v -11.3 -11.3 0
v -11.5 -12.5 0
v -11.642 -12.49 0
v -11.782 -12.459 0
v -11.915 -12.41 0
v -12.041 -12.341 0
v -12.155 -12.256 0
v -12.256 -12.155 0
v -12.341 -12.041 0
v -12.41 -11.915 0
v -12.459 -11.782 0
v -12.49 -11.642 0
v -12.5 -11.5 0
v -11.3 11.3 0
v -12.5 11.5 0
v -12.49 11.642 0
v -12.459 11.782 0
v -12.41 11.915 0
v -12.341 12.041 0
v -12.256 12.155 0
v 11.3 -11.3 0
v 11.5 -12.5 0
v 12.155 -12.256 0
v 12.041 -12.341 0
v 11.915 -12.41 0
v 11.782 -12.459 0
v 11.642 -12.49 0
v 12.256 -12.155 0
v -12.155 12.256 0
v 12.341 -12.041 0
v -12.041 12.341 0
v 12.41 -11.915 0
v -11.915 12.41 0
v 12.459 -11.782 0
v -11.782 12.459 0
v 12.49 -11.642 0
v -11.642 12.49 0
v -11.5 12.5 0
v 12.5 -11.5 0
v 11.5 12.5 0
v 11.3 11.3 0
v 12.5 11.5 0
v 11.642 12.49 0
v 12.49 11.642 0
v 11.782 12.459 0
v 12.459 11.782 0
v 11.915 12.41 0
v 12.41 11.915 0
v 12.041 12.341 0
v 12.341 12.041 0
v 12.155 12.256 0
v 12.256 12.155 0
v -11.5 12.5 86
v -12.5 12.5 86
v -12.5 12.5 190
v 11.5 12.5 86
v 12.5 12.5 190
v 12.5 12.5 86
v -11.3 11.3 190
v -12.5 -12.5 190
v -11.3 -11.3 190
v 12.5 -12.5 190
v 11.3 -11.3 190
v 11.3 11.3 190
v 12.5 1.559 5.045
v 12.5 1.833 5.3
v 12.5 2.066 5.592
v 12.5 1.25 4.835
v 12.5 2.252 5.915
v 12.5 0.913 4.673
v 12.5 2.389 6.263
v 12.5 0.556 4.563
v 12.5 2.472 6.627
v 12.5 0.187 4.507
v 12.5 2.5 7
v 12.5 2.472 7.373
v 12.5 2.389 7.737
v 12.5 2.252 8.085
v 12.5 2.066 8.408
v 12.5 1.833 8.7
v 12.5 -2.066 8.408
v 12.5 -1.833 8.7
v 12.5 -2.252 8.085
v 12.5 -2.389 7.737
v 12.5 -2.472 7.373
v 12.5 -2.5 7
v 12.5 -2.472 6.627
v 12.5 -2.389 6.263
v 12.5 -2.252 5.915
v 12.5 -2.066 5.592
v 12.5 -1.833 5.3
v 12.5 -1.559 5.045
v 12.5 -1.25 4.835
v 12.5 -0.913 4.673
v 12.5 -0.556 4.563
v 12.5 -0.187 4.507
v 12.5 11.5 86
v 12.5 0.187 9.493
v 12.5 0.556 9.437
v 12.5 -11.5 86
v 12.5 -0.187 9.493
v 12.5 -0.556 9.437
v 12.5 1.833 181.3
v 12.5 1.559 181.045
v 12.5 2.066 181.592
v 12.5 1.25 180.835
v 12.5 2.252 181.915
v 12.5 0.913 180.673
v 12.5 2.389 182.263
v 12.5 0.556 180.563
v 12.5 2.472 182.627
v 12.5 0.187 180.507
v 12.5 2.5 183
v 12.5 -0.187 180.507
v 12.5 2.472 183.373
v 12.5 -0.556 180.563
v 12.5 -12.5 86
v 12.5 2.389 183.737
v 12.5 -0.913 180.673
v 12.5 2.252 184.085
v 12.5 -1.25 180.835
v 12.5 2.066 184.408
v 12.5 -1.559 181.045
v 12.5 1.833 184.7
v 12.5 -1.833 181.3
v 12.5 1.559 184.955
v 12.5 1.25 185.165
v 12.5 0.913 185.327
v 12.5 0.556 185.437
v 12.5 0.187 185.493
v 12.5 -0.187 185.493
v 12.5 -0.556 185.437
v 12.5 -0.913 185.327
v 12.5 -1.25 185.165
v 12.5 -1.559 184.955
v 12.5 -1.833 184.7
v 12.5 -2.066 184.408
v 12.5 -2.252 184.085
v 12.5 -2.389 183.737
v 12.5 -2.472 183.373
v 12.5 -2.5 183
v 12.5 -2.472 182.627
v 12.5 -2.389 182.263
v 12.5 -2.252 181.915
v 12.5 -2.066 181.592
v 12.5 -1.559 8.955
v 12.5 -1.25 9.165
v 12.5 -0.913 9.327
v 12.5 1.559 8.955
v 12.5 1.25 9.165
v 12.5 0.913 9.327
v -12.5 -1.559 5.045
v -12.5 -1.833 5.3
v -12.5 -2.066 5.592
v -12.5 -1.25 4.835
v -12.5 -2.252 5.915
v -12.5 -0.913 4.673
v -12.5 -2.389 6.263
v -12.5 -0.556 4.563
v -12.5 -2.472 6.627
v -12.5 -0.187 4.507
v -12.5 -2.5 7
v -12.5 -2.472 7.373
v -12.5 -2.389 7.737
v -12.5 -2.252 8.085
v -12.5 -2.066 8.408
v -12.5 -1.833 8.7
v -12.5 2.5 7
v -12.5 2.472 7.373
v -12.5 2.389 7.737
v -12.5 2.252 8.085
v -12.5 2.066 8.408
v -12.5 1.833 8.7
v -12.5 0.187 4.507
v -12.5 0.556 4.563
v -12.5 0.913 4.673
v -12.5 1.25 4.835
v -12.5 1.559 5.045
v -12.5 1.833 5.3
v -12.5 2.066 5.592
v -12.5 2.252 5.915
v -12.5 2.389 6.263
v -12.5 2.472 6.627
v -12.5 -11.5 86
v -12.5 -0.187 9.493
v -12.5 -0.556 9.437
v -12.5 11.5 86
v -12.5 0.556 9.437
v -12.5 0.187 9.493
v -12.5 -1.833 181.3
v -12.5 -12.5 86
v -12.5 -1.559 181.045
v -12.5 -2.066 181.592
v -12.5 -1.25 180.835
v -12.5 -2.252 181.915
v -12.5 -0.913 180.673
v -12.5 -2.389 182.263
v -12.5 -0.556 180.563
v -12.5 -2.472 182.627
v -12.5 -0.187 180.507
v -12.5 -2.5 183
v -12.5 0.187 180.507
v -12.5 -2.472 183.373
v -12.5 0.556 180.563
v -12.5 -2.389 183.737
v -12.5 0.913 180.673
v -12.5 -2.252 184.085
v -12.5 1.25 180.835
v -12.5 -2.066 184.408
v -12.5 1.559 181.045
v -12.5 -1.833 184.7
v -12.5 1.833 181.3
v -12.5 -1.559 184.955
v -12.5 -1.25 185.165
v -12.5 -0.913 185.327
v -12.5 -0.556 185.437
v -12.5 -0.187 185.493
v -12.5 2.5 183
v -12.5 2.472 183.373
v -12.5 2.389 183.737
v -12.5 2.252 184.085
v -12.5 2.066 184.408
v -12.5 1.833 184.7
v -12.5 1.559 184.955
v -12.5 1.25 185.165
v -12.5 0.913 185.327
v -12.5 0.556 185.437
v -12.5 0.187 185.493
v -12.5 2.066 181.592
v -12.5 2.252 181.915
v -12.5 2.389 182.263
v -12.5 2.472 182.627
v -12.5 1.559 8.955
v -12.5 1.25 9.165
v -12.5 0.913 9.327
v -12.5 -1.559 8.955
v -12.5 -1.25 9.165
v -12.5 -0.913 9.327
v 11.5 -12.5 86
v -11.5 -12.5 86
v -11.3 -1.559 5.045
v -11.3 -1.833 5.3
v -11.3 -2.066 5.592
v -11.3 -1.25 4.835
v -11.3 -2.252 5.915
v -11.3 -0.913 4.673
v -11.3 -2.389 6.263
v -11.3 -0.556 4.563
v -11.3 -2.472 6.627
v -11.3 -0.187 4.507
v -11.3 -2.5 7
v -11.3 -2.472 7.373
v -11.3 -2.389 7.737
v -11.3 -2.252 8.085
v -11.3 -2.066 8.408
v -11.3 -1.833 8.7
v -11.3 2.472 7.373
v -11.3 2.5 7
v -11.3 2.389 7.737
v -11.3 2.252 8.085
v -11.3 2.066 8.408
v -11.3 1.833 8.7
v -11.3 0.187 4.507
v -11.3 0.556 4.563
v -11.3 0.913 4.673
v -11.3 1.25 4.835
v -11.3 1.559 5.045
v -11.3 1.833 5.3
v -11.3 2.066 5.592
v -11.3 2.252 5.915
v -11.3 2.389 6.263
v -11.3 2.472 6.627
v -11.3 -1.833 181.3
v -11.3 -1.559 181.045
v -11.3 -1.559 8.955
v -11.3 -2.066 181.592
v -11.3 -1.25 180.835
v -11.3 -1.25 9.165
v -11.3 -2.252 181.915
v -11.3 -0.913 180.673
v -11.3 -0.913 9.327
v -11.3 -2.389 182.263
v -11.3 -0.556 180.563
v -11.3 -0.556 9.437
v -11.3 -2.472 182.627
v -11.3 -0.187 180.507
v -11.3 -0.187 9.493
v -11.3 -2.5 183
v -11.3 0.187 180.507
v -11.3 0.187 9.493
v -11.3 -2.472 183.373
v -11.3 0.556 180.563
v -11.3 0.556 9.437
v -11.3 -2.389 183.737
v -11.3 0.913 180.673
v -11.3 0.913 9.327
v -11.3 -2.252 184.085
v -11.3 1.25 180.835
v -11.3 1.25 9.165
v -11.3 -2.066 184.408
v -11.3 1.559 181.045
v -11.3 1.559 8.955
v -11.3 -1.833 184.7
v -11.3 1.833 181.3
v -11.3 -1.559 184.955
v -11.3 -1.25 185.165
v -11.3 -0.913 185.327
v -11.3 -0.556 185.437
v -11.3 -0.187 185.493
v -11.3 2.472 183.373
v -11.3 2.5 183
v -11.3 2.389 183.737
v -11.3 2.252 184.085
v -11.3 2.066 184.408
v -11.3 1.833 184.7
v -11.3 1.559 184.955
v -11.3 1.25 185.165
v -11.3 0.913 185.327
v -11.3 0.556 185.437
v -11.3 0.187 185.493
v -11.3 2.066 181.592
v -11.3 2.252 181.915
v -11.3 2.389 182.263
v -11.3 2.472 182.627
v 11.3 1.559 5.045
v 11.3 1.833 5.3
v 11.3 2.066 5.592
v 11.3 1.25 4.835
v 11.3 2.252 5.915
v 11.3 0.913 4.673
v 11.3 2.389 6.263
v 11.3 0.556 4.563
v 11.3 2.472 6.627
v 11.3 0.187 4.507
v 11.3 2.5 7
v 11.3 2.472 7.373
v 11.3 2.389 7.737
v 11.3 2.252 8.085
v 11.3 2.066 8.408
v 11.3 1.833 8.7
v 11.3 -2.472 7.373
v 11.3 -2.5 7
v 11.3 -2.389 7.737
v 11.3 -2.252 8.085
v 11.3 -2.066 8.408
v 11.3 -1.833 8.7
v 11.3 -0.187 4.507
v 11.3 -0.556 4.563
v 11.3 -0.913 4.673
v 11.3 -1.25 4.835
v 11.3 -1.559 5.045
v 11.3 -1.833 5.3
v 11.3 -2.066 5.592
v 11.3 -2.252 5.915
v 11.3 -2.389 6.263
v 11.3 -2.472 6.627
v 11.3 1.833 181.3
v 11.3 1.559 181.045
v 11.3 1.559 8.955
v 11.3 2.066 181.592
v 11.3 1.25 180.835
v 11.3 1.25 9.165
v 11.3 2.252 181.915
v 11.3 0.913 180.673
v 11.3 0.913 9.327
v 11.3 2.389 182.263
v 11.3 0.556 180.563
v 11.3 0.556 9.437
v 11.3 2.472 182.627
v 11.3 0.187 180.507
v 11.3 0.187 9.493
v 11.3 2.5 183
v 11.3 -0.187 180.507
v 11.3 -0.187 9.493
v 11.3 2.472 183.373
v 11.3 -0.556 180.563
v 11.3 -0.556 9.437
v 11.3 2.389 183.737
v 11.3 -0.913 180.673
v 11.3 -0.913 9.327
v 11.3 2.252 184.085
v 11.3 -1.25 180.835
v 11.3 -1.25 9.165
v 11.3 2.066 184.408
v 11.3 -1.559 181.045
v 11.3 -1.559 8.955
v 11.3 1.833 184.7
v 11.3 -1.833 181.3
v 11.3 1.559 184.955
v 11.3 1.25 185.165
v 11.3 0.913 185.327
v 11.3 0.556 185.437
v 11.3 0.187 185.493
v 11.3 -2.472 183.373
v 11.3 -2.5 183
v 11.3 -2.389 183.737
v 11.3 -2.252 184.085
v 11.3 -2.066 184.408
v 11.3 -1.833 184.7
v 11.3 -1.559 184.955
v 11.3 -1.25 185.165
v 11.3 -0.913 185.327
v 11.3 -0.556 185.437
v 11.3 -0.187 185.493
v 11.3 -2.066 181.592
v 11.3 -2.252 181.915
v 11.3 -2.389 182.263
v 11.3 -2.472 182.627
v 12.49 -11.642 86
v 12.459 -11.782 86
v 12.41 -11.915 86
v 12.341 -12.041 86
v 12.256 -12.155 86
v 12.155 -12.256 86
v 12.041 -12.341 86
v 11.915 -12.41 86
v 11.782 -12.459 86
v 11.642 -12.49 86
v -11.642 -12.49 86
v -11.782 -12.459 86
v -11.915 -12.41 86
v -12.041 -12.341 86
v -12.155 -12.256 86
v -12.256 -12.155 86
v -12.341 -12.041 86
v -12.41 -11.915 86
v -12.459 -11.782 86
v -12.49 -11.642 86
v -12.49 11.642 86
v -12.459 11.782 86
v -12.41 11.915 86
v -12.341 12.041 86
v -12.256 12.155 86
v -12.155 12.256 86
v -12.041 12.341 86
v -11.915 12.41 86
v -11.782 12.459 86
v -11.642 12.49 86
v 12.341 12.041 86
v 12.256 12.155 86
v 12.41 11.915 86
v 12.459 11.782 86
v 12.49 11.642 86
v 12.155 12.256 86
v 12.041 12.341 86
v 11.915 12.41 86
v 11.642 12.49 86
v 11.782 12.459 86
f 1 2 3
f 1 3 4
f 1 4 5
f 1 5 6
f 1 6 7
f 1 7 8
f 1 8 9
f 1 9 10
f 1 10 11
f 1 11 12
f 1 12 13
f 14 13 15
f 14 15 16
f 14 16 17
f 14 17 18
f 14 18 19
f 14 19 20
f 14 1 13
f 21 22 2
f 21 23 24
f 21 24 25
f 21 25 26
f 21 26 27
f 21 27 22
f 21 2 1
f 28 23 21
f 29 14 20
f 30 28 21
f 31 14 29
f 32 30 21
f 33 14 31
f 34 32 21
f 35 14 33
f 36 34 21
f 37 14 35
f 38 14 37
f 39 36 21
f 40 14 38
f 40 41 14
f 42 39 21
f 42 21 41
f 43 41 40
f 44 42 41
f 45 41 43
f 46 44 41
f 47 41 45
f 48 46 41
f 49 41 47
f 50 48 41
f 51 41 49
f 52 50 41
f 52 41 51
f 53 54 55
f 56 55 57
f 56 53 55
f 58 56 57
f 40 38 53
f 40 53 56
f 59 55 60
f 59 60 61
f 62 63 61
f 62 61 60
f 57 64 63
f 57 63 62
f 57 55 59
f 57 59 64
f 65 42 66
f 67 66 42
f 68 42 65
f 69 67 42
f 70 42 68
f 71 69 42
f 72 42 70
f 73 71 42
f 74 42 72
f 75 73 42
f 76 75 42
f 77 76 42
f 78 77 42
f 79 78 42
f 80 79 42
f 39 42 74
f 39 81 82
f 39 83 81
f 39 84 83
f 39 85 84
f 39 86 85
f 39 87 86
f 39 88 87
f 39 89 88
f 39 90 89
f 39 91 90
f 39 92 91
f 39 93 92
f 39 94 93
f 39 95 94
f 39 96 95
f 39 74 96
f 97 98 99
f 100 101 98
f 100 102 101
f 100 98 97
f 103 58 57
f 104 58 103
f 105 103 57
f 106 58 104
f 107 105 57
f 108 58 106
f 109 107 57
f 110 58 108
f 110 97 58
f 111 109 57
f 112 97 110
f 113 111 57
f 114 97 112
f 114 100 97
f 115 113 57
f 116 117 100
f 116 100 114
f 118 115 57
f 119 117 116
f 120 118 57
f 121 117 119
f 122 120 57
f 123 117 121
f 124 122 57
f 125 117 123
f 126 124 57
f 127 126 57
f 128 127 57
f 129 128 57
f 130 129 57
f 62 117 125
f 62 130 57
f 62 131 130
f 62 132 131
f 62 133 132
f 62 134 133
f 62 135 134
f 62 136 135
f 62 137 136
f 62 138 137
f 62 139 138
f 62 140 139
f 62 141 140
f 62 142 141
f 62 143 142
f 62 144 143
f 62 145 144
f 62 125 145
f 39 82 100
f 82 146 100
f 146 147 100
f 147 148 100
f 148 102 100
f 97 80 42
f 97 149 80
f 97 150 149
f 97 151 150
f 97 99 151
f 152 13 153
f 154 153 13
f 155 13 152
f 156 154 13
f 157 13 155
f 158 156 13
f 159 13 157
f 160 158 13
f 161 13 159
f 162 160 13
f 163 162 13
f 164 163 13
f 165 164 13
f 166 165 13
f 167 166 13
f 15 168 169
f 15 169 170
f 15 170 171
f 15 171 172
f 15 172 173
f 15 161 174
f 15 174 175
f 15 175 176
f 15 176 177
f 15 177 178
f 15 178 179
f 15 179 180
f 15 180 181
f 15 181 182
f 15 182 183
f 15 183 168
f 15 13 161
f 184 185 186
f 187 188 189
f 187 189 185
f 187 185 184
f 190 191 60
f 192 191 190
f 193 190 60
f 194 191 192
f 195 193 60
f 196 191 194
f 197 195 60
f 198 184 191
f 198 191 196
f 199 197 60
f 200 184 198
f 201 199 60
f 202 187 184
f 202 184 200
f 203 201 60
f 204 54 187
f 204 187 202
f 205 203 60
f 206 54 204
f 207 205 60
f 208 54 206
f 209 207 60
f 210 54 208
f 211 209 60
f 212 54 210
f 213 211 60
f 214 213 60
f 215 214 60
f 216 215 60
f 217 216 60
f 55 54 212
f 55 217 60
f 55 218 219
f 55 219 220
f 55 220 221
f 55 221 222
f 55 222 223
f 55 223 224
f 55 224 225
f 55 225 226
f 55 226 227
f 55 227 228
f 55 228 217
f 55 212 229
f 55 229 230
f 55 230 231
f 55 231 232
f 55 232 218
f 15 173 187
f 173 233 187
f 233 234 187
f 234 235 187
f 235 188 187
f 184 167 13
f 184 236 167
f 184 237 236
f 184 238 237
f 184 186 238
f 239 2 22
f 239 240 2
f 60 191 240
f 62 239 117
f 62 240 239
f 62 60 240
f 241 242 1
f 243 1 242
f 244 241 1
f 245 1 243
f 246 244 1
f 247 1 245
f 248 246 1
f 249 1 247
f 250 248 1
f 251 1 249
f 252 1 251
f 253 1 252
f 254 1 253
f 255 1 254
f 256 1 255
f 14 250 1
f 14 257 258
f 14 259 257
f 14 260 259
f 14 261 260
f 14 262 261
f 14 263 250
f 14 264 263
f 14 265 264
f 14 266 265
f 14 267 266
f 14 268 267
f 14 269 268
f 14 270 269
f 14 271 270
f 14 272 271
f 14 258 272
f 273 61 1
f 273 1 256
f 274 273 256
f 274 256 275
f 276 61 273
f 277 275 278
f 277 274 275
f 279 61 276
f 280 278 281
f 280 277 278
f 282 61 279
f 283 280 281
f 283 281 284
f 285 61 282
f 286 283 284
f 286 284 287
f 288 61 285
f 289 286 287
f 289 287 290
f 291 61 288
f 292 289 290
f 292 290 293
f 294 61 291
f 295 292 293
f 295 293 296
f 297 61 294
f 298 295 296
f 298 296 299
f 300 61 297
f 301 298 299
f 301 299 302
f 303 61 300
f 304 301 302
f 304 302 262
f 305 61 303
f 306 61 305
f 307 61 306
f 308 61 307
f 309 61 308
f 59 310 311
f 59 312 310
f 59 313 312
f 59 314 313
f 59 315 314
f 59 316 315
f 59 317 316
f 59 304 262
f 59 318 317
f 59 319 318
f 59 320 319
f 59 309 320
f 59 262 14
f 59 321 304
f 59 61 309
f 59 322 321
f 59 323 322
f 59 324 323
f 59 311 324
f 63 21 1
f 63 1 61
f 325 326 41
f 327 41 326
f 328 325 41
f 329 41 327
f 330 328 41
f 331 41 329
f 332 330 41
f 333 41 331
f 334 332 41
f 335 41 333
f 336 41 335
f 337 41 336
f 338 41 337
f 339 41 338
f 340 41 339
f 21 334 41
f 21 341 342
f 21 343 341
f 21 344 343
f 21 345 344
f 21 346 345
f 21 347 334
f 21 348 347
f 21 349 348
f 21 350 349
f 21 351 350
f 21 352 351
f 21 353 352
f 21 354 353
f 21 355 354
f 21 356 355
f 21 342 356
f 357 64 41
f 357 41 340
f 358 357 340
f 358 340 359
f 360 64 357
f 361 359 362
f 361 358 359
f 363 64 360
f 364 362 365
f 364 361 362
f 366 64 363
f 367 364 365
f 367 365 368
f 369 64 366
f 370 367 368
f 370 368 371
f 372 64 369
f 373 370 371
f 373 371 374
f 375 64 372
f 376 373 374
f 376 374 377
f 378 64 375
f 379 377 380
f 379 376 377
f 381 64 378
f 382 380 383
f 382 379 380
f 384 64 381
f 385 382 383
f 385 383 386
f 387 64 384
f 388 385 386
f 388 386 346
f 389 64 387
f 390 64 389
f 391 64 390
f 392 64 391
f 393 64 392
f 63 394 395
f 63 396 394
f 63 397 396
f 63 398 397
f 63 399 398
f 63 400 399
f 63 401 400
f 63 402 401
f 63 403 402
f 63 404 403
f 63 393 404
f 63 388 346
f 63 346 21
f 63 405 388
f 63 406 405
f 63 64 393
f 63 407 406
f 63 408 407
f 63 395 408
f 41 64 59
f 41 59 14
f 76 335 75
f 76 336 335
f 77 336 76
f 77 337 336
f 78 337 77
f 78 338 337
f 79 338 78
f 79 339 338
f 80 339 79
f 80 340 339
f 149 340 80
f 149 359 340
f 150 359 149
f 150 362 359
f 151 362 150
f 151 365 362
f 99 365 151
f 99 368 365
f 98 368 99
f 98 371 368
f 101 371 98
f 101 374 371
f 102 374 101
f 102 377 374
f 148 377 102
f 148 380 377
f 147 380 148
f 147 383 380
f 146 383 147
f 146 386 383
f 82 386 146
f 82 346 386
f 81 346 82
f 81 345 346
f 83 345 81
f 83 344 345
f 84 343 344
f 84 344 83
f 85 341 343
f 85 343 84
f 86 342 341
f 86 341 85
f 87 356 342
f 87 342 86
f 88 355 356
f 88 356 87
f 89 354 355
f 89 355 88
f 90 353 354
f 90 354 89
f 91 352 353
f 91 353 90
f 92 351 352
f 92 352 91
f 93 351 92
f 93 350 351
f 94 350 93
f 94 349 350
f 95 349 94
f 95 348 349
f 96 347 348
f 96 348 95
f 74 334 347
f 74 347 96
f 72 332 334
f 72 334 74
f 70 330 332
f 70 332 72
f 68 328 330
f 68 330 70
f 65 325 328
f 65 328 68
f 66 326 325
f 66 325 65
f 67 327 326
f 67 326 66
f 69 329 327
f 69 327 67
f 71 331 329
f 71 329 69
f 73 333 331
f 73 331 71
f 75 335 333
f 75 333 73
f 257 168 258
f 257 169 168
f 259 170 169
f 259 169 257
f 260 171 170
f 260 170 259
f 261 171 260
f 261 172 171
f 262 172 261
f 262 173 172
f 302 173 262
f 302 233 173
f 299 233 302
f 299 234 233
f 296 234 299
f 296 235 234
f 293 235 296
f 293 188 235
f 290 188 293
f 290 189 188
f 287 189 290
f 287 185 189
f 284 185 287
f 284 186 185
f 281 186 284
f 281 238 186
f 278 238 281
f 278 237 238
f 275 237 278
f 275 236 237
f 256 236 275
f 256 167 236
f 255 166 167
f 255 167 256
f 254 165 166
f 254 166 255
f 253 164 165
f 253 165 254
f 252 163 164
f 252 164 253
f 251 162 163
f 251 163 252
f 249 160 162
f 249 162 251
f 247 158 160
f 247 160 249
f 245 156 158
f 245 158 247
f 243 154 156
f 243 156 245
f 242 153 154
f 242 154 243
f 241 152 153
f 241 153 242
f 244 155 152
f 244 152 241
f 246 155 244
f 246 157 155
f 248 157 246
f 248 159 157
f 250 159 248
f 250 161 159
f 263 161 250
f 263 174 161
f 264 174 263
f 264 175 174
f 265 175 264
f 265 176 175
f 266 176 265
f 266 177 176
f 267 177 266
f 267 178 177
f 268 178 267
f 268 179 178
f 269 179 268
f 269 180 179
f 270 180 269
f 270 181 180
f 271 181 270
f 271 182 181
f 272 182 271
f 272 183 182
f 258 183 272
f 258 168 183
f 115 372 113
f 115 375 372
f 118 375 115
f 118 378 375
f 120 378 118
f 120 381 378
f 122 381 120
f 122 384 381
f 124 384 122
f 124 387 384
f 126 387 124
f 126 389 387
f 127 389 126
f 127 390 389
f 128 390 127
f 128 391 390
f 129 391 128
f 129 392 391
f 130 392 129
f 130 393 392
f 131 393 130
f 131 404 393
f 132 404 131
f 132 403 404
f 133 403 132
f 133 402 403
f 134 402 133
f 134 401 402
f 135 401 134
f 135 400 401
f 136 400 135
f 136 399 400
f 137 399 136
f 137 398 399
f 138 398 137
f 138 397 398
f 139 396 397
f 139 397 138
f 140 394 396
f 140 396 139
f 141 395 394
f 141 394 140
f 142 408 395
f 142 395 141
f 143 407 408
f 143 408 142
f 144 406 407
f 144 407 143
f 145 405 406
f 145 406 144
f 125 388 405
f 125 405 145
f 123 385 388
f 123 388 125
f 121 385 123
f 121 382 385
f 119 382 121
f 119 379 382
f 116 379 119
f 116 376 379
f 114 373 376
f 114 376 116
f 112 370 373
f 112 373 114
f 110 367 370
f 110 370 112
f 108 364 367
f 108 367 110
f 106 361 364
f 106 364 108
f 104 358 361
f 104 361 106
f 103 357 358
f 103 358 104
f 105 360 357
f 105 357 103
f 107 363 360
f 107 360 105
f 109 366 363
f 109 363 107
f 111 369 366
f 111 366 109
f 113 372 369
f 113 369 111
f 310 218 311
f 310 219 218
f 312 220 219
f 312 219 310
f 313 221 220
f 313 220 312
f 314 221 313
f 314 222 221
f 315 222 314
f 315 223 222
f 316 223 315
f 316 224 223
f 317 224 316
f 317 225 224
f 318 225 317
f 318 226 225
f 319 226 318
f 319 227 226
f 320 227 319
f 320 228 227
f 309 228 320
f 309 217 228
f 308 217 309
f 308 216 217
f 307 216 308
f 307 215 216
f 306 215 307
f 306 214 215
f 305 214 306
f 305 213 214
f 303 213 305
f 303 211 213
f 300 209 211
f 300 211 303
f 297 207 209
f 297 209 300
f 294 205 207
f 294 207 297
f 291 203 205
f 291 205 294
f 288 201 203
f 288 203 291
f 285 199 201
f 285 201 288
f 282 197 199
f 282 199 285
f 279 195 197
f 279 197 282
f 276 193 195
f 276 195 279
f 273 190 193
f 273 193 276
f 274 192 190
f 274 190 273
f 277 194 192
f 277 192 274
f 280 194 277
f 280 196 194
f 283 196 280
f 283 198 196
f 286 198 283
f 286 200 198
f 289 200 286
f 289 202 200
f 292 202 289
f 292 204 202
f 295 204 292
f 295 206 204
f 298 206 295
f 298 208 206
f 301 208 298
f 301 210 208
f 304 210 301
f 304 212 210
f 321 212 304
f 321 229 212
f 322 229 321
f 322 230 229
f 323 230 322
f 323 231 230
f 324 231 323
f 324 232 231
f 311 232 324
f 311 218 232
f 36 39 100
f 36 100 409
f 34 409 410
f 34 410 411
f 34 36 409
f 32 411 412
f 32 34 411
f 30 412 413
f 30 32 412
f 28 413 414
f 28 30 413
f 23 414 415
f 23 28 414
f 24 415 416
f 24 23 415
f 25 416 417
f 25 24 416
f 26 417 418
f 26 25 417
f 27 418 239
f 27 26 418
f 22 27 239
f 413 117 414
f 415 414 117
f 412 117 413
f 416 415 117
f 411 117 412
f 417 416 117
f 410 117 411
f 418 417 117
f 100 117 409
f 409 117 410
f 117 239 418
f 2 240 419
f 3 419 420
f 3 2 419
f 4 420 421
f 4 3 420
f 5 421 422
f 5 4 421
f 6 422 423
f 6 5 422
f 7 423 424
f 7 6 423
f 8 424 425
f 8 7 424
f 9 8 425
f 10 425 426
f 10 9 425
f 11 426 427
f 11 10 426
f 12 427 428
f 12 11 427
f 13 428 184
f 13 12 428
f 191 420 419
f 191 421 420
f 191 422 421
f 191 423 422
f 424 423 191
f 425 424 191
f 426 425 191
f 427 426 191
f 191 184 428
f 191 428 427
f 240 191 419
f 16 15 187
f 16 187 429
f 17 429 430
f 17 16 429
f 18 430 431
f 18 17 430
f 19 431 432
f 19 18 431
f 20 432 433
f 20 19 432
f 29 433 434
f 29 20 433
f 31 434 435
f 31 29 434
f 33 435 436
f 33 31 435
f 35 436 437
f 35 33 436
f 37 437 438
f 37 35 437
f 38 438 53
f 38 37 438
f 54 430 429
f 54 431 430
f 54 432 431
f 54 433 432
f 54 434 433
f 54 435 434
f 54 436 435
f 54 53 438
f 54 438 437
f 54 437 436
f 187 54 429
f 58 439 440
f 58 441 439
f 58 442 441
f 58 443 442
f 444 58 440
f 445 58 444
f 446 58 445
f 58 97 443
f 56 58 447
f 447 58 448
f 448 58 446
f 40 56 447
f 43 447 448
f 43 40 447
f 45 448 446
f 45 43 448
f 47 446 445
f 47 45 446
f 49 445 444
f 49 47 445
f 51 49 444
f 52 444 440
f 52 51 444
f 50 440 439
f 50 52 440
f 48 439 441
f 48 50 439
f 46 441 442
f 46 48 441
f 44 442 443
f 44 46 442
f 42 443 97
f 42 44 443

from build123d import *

# Parameters (mm, degrees)
CROQUIS1_W              = 25
CROQUIS1_H              = 25
CROQUIS1_W_2            = 22.6
CROQUIS1_H_2            = 22.6
SALIENTE_EXTRUIR1_DEPTH = 190
CROQUIS2_R              = 2.5
CORTAR_EXTRUIR1_DEPTH   = 193.044916621
CROQUIS3_R              = 40
CORTAR_EXTRUIR2_DEPTH   = 86


with BuildPart() as part:
    # Croquis1 → Saliente-Extruir1 (new body)
    with BuildSketch(Plane.XY):
        Rectangle(CROQUIS1_W, CROQUIS1_H)
        Rectangle(CROQUIS1_W_2, CROQUIS1_H_2, mode=Mode.SUBTRACT)
    extrude(amount=SALIENTE_EXTRUIR1_DEPTH)

    # Croquis2 → Cortar-Extruir1 (cut, through all)
    with BuildSketch(Plane(origin=(12.5, 0, 0), x_dir=(0, 0, -1), z_dir=(1, 0, 0))):
        with Locations(Location((-7, 0, 0), (0, 0, 90))):
            Circle(CROQUIS2_R)
        with Locations(Location((-183, 0, 0), (0, 0, 90))):
            Circle(CROQUIS2_R)
    extrude(amount=-CORTAR_EXTRUIR1_DEPTH, mode=Mode.SUBTRACT)

    # Croquis3 → Cortar-Extruir2 (cut)
    with BuildSketch(Plane(origin=(0, 0, 0), x_dir=(-1, 0, 0), z_dir=(0, 0, -1))):
        Circle(CROQUIS3_R)
        with BuildLine():
            Line((-11.5, 12.5), (11.5, 12.5))
            ThreePointArc((11.5, 12.5), (12.207106781, 12.207106781), (12.5, 11.5))
            Line((12.5, 11.5), (12.5, -11.5))
            ThreePointArc((12.5, -11.5), (12.207106781, -12.207106781), (11.5, -12.5))
            Line((11.5, -12.5), (-11.5, -12.5))
            ThreePointArc((-11.5, -12.5), (-12.207106781, -12.207106781), (-12.5, -11.5))
            Line((-12.5, -11.5), (-12.5, 11.5))
            ThreePointArc((-12.5, 11.5), (-12.207106781, 12.207106781), (-11.5, 12.5))
        make_face(mode=Mode.SUBTRACT)
    extrude(amount=-CORTAR_EXTRUIR2_DEPTH, mode=Mode.SUBTRACT)


solid = part.part
